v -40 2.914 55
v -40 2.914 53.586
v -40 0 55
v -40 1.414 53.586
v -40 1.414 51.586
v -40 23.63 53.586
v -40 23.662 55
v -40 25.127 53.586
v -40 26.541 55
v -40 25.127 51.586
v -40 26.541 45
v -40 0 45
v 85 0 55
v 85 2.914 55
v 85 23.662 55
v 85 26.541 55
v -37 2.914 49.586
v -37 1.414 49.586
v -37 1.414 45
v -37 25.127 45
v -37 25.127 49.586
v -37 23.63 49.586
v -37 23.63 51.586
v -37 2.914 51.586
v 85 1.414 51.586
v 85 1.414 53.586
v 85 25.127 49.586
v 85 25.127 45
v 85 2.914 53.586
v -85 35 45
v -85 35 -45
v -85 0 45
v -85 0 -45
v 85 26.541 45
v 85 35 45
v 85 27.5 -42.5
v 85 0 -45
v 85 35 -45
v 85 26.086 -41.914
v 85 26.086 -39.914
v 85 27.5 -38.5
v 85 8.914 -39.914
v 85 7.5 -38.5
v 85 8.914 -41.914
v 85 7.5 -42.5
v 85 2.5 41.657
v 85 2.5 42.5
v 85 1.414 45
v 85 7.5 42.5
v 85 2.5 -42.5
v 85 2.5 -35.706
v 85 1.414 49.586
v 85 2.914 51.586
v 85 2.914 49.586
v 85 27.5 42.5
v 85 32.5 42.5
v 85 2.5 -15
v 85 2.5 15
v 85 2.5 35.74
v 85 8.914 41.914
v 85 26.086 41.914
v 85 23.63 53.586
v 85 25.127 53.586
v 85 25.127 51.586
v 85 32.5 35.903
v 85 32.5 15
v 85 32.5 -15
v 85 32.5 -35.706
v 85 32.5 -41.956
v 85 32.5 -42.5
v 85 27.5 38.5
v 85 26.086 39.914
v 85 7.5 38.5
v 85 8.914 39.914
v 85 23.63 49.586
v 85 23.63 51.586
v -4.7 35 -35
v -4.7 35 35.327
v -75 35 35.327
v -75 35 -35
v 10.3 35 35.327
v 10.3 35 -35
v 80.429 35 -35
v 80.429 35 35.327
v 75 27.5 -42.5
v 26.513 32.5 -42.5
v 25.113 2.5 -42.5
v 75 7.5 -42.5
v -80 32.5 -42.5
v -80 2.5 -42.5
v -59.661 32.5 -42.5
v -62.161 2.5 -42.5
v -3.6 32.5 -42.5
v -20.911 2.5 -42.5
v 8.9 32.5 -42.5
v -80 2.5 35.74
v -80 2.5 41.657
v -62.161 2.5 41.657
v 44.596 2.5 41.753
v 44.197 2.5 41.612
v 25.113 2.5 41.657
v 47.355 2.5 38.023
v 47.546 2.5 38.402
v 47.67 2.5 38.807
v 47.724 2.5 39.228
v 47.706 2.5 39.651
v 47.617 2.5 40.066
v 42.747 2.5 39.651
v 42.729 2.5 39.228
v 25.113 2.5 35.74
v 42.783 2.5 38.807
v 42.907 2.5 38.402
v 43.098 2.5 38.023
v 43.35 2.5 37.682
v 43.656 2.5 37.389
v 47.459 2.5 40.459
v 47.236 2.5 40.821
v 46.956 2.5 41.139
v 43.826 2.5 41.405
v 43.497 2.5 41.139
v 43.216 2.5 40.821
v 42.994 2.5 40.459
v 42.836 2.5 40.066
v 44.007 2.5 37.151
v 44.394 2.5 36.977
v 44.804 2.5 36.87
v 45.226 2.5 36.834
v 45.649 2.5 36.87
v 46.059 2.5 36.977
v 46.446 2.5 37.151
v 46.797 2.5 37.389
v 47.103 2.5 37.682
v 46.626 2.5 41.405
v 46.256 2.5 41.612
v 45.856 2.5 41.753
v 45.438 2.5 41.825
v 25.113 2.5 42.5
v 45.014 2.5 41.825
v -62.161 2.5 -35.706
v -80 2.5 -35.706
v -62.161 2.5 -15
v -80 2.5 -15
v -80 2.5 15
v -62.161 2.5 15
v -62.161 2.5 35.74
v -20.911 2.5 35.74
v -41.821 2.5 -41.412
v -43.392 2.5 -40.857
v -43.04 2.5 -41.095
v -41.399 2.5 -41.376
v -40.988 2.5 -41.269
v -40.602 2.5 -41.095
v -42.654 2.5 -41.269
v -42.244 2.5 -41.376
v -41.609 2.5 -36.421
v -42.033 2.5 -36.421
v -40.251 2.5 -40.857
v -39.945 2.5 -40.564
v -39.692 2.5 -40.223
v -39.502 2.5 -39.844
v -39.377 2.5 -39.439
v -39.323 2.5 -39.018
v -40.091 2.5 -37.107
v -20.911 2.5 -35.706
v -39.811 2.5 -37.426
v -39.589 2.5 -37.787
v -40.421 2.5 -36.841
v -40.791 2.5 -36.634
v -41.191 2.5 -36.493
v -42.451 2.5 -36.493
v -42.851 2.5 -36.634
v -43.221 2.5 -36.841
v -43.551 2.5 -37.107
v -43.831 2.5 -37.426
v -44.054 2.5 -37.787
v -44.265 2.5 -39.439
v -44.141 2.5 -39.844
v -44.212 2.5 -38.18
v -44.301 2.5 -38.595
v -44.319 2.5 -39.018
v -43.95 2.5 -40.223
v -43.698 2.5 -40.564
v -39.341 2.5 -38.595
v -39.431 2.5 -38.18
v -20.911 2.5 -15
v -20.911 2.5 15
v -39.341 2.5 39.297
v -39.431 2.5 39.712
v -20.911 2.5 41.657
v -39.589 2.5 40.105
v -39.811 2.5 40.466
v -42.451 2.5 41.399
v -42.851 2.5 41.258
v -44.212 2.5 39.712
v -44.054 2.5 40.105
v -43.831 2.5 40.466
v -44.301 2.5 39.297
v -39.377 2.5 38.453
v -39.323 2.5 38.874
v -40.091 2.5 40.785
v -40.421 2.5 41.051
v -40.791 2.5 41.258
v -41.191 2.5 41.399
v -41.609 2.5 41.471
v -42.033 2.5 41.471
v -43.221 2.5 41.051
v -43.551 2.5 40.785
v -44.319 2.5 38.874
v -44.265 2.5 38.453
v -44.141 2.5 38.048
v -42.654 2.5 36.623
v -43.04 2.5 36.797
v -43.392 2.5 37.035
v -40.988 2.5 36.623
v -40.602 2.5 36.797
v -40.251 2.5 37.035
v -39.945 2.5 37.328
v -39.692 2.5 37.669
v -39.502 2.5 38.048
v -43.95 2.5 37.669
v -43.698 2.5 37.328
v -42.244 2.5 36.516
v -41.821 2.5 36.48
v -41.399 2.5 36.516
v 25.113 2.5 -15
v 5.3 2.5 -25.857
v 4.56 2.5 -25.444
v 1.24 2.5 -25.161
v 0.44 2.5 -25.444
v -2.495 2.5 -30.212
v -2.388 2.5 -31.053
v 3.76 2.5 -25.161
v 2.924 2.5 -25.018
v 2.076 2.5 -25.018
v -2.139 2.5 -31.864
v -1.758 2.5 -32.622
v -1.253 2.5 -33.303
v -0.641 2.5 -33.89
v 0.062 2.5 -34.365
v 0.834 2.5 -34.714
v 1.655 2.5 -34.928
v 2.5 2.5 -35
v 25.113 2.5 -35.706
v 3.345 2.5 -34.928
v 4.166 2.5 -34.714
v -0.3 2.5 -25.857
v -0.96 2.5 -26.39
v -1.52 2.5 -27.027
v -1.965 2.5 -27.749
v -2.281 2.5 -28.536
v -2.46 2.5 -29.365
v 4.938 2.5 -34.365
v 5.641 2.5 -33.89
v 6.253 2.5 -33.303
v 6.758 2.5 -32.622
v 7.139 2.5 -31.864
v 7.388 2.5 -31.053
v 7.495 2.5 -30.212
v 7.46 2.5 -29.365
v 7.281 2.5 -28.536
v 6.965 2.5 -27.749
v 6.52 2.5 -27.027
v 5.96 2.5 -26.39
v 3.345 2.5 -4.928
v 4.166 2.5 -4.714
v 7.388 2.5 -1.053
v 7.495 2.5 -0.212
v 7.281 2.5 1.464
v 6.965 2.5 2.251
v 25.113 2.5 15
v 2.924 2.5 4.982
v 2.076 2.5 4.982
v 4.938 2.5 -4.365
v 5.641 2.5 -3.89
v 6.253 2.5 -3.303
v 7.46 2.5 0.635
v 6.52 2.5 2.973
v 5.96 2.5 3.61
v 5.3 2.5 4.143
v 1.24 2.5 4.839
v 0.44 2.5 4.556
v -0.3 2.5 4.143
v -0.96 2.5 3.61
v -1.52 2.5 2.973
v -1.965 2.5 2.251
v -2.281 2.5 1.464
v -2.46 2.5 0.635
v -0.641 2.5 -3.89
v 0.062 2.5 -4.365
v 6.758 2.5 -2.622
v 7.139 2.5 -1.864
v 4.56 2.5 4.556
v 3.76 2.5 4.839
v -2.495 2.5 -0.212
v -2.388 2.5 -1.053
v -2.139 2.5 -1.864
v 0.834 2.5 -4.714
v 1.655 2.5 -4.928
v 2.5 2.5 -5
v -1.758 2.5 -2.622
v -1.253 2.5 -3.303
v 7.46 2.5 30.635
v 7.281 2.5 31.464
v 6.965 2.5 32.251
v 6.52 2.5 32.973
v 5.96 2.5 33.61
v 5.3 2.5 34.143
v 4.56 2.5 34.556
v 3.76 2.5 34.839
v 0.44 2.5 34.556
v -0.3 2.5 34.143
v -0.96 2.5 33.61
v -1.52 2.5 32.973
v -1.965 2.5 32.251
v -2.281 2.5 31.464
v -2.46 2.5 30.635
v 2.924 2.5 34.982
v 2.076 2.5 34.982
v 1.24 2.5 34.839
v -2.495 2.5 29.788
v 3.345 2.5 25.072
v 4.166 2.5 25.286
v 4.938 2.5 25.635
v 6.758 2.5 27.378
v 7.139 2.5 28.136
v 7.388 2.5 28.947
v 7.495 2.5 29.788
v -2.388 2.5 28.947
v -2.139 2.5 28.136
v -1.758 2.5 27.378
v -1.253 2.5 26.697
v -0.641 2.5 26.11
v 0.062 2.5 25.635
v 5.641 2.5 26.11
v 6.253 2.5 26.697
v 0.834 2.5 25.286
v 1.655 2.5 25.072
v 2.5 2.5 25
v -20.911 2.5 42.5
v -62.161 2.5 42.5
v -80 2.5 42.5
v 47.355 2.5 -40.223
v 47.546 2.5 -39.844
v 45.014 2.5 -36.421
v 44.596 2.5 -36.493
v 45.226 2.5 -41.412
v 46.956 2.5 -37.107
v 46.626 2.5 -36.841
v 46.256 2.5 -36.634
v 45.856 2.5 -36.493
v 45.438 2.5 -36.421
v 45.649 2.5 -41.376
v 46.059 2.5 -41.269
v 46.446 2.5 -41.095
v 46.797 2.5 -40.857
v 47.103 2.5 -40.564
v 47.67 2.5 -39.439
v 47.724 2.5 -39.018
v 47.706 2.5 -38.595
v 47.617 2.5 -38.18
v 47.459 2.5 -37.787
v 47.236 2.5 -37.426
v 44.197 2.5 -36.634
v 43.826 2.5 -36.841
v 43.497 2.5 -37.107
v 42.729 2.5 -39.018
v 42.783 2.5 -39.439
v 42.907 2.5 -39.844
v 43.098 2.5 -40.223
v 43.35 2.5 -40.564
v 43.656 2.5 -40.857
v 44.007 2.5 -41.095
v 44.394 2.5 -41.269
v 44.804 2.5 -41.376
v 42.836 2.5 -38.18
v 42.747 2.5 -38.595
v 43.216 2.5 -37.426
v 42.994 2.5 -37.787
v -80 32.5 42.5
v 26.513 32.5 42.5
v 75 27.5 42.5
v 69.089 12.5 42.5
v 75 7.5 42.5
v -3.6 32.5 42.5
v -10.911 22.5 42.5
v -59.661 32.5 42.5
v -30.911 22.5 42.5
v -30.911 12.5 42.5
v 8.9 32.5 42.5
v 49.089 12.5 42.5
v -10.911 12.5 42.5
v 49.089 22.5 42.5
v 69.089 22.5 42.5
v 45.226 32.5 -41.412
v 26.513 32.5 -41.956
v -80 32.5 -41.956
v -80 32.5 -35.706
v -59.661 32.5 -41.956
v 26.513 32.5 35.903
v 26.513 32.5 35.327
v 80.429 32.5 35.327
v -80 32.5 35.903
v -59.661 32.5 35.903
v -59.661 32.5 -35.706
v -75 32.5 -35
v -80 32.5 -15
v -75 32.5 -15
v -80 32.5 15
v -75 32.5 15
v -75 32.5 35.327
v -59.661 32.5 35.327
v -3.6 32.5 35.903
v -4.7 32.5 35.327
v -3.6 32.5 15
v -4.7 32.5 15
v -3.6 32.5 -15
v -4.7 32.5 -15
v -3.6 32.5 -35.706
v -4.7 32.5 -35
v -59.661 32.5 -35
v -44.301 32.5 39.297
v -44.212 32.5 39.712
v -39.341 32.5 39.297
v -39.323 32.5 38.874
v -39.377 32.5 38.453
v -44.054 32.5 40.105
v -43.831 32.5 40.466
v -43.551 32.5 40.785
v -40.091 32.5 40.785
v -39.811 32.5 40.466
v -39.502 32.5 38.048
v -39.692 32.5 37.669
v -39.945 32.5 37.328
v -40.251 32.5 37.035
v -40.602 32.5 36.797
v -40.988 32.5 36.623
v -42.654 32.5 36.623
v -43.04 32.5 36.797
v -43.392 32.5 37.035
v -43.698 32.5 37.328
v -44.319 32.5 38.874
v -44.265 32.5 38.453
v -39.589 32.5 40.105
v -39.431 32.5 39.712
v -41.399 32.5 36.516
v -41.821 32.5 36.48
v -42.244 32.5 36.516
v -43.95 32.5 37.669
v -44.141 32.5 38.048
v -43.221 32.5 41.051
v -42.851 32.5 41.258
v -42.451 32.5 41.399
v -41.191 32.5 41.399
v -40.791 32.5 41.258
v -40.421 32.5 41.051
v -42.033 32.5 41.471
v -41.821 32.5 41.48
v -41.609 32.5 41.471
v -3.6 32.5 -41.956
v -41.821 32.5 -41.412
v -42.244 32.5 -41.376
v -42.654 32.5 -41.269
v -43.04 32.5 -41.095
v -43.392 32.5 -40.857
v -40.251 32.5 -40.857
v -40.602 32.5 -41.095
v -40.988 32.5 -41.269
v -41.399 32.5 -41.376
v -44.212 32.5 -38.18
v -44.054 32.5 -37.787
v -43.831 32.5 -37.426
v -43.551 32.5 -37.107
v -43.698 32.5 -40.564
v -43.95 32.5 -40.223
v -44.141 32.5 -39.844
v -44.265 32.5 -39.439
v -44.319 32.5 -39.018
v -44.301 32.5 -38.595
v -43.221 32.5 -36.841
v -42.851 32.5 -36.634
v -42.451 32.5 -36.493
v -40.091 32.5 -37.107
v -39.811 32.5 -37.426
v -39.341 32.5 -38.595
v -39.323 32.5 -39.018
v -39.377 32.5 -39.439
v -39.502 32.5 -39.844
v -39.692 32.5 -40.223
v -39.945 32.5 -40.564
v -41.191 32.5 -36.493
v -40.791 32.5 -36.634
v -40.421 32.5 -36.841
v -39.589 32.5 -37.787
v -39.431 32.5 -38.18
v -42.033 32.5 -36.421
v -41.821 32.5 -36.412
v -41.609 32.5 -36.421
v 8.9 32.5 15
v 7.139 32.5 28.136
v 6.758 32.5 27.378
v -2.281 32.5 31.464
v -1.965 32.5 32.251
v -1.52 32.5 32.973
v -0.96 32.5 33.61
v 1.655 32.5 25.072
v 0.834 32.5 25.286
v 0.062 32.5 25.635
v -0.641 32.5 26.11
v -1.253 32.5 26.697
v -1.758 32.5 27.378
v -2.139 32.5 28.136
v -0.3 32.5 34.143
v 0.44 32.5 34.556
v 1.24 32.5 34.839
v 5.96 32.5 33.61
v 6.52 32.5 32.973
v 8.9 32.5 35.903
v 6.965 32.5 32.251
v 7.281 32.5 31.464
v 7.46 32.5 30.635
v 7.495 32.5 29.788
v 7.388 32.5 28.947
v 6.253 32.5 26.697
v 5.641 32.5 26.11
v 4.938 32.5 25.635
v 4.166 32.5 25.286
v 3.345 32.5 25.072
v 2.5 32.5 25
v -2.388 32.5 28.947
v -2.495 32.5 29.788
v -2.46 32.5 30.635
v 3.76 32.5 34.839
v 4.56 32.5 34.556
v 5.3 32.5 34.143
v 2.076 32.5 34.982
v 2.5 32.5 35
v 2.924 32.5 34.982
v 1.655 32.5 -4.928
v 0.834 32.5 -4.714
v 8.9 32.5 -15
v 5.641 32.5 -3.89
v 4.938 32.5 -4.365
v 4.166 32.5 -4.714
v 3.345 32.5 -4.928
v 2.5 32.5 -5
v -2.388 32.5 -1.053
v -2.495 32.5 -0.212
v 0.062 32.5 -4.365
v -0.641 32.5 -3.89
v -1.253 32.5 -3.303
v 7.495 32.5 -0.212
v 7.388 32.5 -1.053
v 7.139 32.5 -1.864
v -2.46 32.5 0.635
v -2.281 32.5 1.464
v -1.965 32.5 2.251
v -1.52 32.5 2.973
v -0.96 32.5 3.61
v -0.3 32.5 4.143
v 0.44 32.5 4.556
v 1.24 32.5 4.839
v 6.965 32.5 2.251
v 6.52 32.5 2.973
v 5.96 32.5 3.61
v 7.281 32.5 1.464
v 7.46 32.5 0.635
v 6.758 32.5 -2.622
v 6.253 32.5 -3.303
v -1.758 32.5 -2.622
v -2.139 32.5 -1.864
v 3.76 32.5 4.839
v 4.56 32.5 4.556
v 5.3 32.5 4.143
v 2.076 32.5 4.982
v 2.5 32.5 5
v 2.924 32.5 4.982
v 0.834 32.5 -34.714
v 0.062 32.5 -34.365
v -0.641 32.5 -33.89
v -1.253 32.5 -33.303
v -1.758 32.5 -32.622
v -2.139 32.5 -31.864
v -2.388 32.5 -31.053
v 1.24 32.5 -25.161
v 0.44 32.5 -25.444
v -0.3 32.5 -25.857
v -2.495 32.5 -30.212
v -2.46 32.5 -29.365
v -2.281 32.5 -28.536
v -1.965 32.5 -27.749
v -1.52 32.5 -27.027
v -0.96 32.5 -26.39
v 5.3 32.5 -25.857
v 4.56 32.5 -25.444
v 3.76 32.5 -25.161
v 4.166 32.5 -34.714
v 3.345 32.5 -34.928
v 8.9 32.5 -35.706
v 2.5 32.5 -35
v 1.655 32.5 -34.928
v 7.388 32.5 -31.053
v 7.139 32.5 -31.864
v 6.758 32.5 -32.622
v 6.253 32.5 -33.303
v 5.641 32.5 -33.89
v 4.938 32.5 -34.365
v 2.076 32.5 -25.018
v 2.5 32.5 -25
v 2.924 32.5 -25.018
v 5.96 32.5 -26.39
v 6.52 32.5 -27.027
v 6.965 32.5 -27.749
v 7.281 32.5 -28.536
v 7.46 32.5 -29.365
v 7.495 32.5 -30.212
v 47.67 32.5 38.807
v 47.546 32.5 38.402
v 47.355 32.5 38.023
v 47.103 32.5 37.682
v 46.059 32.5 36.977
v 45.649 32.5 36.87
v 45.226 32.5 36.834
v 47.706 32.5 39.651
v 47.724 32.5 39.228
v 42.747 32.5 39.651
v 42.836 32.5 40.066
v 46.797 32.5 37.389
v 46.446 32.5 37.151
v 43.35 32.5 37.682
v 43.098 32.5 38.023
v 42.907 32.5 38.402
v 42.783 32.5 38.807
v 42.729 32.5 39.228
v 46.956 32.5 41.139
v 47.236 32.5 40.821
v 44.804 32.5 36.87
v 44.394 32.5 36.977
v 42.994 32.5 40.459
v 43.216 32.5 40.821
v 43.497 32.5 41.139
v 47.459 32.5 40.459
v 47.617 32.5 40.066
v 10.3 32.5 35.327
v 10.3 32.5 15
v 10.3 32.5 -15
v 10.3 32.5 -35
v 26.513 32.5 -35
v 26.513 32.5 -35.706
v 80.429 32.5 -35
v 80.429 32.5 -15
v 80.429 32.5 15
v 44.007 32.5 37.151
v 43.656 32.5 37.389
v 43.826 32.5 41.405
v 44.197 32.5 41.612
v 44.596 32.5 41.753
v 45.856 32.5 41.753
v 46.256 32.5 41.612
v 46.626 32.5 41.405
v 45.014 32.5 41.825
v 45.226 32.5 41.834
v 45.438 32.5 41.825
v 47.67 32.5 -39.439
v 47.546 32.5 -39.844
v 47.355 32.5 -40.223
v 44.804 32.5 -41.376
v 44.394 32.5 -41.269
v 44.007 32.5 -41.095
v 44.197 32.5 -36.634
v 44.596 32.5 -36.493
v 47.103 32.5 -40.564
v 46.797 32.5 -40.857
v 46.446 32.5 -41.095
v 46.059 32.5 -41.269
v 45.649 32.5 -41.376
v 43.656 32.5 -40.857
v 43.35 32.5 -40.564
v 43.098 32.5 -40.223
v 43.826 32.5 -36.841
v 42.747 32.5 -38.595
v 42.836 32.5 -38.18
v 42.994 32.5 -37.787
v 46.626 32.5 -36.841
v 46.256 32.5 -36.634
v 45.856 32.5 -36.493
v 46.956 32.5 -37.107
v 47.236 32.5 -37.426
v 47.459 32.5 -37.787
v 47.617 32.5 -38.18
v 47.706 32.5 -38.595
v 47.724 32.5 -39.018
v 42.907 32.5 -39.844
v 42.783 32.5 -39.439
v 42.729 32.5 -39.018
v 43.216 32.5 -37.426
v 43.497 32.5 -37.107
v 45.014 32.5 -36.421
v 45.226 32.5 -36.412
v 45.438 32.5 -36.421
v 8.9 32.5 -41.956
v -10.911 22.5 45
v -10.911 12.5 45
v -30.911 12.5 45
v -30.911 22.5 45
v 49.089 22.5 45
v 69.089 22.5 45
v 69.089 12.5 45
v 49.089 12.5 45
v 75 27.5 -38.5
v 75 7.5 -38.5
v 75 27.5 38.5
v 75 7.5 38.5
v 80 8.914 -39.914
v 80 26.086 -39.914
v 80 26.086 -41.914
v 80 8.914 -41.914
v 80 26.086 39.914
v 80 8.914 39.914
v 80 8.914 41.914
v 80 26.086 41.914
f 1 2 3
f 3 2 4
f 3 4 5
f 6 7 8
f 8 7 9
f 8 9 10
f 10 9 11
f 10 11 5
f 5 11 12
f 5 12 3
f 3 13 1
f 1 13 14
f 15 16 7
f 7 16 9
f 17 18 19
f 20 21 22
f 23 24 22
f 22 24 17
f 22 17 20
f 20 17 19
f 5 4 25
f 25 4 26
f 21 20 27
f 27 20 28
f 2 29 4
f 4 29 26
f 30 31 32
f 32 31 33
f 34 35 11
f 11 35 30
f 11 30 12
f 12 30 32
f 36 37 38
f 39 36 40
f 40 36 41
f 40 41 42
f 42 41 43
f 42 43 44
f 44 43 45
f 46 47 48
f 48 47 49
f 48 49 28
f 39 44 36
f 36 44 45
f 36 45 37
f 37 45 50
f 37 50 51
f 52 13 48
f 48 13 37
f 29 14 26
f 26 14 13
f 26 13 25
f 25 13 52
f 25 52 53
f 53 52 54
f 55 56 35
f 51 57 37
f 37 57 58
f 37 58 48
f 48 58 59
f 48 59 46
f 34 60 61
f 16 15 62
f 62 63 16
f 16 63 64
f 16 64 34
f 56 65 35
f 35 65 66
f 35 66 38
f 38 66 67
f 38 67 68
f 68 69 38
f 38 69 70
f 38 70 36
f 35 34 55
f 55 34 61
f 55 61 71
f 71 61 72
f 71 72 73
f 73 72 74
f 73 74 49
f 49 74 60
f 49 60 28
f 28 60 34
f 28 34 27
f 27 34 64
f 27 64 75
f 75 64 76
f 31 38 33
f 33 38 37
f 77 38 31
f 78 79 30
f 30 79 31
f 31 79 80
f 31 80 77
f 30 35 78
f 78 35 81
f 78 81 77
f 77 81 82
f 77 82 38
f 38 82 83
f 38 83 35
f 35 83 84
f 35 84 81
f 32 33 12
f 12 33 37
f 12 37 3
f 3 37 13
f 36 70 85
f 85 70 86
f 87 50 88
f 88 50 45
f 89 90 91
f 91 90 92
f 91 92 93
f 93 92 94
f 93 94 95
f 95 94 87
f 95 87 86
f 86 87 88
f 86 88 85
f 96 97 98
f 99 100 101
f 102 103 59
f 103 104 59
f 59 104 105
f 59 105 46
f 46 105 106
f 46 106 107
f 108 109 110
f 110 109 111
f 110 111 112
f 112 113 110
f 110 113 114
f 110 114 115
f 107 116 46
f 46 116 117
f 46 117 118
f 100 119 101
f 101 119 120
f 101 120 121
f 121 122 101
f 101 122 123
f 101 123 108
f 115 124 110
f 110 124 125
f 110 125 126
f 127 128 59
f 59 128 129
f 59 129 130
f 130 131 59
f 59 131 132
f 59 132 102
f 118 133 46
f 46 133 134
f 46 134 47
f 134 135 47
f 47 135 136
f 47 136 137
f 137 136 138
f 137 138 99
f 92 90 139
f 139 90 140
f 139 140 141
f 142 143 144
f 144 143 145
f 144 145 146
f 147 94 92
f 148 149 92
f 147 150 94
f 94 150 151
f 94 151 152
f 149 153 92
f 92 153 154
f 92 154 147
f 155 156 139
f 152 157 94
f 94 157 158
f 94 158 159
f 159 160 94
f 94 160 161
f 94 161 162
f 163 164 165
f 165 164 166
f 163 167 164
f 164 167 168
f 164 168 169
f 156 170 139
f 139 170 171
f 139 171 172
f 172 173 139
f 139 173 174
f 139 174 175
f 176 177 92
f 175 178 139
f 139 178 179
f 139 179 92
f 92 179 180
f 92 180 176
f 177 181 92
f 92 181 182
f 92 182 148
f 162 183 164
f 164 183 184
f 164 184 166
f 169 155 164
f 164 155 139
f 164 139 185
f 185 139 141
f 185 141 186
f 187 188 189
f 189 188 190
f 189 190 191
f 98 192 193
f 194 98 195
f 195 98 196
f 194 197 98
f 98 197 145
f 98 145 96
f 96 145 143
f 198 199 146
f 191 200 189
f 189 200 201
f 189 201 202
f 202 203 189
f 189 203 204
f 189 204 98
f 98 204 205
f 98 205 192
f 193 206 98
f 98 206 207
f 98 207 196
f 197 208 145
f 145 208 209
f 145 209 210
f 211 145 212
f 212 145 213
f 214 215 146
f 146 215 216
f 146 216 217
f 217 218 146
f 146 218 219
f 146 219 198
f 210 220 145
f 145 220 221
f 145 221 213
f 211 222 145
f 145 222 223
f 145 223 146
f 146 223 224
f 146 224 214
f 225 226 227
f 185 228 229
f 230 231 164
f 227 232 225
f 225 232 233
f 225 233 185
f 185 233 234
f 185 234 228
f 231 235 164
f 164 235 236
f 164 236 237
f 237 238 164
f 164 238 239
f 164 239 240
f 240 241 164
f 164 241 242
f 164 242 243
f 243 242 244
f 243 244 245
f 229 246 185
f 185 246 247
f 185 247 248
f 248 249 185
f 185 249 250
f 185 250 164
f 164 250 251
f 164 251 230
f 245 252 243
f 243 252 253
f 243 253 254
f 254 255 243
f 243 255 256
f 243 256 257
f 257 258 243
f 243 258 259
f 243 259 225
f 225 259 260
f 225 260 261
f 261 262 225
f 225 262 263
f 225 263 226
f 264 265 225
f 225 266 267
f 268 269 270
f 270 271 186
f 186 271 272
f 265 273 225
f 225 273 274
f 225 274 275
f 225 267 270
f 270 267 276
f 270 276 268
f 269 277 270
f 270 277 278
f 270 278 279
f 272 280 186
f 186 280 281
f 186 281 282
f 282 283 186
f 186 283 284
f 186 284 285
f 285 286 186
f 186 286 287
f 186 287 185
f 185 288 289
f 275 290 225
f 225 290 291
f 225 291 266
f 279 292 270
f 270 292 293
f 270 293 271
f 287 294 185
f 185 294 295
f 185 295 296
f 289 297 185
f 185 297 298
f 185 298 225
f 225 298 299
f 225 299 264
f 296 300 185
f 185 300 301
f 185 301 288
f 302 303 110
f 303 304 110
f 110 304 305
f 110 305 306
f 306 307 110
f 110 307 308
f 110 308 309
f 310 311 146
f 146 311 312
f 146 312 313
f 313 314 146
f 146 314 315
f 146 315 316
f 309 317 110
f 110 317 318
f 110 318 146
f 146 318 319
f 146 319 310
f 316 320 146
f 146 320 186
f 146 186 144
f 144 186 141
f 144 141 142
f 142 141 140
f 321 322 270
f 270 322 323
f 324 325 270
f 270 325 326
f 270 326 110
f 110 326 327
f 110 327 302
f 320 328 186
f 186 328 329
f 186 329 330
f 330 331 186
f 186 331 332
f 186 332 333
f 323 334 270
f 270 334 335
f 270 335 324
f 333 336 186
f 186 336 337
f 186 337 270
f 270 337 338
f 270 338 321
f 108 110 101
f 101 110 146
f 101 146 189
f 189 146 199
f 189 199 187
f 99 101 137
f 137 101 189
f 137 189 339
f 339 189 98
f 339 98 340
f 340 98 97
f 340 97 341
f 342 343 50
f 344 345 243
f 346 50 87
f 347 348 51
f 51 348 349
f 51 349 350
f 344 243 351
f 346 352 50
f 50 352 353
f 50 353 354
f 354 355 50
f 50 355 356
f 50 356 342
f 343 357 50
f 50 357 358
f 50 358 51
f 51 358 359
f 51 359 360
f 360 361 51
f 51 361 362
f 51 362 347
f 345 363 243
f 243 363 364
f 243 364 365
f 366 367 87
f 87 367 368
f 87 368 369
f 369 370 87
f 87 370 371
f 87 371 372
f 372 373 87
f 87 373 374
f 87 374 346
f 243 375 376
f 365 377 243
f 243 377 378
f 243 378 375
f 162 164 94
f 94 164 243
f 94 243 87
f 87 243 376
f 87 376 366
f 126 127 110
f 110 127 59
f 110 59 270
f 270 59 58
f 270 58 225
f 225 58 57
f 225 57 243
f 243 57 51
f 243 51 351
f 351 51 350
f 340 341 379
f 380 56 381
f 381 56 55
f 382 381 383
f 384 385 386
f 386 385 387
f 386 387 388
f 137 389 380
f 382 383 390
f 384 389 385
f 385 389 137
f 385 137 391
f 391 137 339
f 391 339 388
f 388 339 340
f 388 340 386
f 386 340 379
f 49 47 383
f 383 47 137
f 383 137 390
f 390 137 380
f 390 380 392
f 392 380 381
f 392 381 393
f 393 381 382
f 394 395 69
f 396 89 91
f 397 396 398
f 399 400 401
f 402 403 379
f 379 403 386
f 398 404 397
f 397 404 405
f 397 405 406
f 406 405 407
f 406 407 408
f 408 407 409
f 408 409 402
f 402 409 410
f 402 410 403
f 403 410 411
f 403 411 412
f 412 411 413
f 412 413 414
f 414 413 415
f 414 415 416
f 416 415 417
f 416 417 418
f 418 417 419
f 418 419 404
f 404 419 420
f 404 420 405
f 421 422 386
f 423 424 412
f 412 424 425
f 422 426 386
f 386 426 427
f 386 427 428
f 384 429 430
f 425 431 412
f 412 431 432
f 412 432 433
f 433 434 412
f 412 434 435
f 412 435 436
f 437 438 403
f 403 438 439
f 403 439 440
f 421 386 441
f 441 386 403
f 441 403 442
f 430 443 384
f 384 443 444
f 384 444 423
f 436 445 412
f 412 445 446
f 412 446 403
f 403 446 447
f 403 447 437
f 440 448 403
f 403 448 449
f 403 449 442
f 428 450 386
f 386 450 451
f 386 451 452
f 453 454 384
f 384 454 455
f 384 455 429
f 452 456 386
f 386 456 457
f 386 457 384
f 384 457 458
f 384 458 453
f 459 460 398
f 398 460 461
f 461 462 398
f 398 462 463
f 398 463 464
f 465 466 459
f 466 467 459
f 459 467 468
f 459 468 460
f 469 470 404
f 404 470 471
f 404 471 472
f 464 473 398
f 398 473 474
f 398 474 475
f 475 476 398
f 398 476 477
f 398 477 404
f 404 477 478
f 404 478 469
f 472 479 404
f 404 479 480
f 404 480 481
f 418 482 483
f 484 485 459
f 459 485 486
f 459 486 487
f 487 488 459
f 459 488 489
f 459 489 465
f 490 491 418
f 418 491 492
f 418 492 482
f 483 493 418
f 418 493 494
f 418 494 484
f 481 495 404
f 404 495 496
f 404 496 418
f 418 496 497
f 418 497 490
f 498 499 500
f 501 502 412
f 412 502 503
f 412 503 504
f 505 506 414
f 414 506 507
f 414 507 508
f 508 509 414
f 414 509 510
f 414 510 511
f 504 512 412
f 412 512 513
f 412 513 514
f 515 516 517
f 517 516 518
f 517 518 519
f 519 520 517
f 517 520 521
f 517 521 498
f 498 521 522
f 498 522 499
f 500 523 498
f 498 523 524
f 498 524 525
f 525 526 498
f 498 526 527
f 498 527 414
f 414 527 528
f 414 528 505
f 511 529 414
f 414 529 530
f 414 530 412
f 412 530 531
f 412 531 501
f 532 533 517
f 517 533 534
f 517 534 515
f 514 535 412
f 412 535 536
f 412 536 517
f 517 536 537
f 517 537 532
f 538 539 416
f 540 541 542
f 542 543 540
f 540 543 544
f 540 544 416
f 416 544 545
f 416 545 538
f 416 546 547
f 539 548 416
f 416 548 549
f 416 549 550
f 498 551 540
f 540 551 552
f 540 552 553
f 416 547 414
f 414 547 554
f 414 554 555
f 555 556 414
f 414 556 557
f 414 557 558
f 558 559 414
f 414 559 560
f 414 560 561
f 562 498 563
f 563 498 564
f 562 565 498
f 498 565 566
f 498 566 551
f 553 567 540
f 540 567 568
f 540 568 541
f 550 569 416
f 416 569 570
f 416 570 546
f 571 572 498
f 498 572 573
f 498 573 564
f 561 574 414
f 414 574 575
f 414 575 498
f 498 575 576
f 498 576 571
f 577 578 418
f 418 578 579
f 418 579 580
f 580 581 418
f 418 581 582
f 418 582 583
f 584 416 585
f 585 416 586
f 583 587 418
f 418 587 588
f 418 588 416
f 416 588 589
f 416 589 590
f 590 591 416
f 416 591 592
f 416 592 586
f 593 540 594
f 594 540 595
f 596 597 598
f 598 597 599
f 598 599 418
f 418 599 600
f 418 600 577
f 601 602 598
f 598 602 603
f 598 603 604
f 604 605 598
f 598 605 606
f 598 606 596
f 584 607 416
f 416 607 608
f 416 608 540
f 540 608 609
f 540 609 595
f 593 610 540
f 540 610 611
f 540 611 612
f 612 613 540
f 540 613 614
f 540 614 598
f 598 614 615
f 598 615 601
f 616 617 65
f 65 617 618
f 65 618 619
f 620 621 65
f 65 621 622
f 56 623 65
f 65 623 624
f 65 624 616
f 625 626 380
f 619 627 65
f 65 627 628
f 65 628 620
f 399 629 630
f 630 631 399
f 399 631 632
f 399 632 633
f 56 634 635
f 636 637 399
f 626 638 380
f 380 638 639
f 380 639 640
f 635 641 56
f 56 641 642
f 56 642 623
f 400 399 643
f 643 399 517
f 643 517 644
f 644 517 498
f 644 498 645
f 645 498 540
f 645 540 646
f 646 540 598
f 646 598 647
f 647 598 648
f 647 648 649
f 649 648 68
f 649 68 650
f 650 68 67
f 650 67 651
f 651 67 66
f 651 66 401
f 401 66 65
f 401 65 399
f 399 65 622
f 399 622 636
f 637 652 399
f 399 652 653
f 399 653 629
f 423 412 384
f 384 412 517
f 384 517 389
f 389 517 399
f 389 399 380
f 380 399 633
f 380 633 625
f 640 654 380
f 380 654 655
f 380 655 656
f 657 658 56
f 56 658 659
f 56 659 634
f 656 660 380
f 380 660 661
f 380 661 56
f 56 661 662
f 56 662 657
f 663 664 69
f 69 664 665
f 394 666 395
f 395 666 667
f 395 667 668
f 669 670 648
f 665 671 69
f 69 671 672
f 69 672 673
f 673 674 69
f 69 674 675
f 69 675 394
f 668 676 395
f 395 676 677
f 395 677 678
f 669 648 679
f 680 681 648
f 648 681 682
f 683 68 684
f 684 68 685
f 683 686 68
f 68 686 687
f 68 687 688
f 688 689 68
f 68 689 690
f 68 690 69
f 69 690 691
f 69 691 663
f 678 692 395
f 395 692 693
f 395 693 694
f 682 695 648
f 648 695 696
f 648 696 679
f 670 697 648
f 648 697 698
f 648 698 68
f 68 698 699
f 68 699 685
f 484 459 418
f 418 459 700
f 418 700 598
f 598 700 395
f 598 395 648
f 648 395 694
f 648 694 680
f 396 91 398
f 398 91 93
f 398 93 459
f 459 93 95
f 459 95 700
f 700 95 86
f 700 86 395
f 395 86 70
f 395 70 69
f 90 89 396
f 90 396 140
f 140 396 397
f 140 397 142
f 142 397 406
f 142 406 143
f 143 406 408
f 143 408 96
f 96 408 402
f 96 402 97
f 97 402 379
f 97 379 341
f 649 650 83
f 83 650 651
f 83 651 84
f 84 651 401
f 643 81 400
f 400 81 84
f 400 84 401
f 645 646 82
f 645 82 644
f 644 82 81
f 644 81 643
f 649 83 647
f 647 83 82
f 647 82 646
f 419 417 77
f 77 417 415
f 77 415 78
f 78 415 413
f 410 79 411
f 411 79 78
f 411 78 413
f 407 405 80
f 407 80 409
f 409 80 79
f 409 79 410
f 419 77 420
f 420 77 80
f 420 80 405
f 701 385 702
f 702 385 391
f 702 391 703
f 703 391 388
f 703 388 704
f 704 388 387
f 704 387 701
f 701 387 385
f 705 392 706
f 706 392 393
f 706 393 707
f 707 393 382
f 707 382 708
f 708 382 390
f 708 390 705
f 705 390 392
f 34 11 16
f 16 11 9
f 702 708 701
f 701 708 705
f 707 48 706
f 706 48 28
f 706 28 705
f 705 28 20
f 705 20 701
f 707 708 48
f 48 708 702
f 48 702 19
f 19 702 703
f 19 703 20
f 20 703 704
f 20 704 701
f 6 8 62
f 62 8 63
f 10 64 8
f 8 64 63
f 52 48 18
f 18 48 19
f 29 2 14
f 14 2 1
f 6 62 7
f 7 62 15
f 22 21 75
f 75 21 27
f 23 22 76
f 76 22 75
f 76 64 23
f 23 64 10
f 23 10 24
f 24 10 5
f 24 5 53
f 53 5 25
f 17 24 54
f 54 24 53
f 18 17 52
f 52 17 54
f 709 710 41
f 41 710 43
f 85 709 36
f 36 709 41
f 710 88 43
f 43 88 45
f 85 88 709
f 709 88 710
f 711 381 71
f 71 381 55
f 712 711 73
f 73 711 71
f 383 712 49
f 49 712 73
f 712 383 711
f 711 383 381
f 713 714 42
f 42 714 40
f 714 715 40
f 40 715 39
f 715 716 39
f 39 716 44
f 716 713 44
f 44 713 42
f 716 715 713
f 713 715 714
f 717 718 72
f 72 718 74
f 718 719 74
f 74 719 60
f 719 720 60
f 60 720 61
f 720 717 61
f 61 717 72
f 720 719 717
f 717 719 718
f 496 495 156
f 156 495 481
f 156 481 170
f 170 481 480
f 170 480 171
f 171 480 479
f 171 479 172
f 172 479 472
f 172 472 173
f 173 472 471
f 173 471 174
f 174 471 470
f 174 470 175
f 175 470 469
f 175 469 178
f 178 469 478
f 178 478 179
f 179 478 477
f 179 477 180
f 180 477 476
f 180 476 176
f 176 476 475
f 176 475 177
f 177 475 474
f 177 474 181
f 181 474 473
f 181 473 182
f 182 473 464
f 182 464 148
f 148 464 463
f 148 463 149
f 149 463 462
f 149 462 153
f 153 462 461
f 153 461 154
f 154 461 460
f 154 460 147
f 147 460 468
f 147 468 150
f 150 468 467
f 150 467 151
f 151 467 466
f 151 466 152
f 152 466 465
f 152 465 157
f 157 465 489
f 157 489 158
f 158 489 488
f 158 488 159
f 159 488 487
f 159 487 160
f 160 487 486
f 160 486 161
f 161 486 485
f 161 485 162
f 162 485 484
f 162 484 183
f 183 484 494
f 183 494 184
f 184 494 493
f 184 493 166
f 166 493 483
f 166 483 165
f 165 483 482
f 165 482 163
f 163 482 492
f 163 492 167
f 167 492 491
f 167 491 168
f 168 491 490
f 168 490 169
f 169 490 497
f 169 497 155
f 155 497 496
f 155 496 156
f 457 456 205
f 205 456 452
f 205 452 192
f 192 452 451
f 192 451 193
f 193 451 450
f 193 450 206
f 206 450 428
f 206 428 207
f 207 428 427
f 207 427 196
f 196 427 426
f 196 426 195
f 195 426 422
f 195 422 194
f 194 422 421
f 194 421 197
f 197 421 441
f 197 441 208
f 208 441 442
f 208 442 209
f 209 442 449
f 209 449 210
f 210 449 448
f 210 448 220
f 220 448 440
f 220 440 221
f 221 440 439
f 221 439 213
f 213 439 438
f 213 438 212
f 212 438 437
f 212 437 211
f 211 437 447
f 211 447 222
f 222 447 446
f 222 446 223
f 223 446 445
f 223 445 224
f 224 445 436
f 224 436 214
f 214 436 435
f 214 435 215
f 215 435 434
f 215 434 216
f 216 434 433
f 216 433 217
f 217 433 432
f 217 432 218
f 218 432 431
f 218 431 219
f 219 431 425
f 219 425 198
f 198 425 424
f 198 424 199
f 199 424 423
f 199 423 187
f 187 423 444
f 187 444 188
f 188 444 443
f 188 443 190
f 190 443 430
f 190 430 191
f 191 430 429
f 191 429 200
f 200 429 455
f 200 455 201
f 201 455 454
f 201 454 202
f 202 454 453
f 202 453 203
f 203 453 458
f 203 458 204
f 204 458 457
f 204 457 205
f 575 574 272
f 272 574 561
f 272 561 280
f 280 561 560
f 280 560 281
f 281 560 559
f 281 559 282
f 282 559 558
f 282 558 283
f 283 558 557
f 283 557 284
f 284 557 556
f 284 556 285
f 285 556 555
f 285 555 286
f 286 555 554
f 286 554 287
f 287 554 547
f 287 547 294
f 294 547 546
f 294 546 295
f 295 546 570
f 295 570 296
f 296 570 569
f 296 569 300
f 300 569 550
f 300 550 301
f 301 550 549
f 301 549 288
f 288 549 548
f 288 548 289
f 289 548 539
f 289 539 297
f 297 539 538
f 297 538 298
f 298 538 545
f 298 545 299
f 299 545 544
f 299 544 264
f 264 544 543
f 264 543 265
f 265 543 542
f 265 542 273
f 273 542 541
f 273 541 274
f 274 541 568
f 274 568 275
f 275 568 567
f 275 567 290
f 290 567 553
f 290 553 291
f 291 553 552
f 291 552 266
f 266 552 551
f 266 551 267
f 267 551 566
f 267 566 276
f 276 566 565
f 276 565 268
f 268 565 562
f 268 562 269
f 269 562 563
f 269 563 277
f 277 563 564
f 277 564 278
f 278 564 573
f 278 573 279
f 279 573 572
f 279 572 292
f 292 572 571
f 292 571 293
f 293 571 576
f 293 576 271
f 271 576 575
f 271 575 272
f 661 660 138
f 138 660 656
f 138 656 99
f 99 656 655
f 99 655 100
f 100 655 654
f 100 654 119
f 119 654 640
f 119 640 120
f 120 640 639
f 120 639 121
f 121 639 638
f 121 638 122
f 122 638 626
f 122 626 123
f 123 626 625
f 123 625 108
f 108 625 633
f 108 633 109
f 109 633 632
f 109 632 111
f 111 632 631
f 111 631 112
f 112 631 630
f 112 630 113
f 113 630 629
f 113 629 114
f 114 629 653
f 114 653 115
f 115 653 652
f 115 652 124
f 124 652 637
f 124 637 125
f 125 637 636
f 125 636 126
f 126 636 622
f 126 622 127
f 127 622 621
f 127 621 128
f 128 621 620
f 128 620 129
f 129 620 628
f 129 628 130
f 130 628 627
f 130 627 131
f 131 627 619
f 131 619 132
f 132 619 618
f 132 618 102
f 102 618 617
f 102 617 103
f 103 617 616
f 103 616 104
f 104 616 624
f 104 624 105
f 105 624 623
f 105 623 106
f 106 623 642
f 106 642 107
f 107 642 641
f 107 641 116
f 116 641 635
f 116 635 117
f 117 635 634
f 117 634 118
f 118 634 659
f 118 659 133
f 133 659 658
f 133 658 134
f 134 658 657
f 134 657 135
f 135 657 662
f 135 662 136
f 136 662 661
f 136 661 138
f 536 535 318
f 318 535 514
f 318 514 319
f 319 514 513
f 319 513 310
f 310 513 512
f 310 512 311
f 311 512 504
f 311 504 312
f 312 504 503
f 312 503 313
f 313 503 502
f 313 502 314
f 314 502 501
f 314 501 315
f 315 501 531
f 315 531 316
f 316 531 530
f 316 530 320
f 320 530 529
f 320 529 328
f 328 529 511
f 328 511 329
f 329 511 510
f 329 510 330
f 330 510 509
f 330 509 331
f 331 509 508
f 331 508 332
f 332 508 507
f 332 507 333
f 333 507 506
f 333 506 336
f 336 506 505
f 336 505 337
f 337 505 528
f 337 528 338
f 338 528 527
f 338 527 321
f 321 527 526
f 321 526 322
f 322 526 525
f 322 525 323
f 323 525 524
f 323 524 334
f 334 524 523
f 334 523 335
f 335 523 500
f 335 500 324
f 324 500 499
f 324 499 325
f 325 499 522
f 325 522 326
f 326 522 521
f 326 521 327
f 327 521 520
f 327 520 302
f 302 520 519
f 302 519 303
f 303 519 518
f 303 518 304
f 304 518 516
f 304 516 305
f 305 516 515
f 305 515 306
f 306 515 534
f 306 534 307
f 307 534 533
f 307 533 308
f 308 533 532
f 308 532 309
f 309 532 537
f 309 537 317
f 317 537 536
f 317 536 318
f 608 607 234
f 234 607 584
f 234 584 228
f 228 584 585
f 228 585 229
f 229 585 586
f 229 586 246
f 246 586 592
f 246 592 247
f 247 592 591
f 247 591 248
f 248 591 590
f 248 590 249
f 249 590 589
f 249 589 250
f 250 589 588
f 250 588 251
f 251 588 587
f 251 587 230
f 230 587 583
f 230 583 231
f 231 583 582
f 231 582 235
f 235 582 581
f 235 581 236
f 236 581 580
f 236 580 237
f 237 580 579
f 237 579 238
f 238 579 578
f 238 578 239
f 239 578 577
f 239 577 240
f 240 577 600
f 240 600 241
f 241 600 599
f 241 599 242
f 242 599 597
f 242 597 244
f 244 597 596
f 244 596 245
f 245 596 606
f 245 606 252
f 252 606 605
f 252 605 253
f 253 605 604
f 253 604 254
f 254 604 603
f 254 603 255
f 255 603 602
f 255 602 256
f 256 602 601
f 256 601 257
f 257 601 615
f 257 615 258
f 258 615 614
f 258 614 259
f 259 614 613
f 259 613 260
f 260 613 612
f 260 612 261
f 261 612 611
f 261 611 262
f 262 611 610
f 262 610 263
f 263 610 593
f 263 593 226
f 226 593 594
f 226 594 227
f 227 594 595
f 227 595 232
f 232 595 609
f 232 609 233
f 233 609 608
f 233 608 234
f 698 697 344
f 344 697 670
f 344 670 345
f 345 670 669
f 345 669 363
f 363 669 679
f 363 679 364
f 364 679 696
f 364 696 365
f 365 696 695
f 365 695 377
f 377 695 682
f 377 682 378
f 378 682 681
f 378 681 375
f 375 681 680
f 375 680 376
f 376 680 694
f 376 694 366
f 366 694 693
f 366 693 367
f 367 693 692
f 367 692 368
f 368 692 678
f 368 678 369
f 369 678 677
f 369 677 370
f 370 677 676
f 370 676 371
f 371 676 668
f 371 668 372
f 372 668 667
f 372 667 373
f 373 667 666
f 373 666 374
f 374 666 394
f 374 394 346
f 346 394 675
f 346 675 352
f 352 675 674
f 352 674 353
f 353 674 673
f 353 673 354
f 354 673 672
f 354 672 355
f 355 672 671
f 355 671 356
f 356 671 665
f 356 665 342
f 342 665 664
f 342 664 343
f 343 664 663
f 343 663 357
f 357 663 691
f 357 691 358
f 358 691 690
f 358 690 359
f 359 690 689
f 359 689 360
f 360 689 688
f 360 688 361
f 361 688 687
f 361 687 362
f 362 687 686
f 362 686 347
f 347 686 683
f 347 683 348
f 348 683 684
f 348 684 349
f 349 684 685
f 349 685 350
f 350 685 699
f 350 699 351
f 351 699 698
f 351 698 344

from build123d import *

# Parameters (mm, degrees)
SKETCH_1_W               = 170
SKETCH_1_H               = 90
EXTRUDE_1_DEPTH          = 35
SKETCH_2_W               = 85
SKETCH_2_H               = 30
CUT_EXTRUDE_1_DEPTH      = 165
SKETCH_3_W               = 70.129701139
SKETCH_3_H               = 70.327043484
SKETCH_3_W_2             = 70.299701721
CUT_EXTRUDE_2_DEPTH      = 10
SKETCH_7_W               = 20
SKETCH_7_H               = 10
CUT_EXTRUDE_3_DEPTH      = 10
EXTRUDE_2_DEPTH          = 85
EXTRUDE_2_DEPTH_BACK     = 40
SKETCH_8_W               = 10
SKETCH_8_H               = 26.54076927
SKETCH_9_W               = 8.585786438
SKETCH_9_H               = 23.712342146
CUT_EXTRUDE_4_DEPTH      = 122
CUT_EXTRUDE_5_DEPTH      = 122
SKETCH_11_W              = 2
SKETCH_11_H              = 1.496455469
SKETCH_11_H_2            = 1.5
EXTRUDE_3_DEPTH          = 122
SKETCH_13_W              = 4
SKETCH_13_H              = 20
EXTRUDE_4_DEPTH          = 10
SKETCH_14_W              = 2
SKETCH_14_H              = 17.171572876
CUT_EXTRUDE_6_DEPTH      = 5
CUT_EXTRUDE_7_DEPTH      = 139.325702601
CUT_EXTRUDE_7_DEPTH_BACK = 5
SKETCH_16_R              = 2.5
SKETCH_16_R_2            = 5
EXTRUDE_5_DEPTH          = 32


with BuildPart() as part:
    # Эскиз1 → Бобышка-Вытянуть1 (new body)
    with BuildSketch(Plane(origin=(0, 0, 0), x_dir=(1, 0, 0), z_dir=(0, 1, 0))):
        Rectangle(SKETCH_1_W, SKETCH_1_H)
    extrude(amount=EXTRUDE_1_DEPTH)

    # Эскиз2 → Вырез-Вытянуть1 (cut)
    with BuildSketch(Plane(origin=(85, 0, 0), x_dir=(0, 0, -1), z_dir=(1, 0, 0))):
        with Locations((0, 17.5)):
            Rectangle(SKETCH_2_W, SKETCH_2_H)
    extrude(amount=-CUT_EXTRUDE_1_DEPTH, mode=Mode.SUBTRACT)

    # Эскиз3 → Вырез-Вытянуть2 (cut)
    with BuildSketch(Plane(origin=(0, 35, 0), x_dir=(1, 0, 0), z_dir=(0, 1, 0))):
        with Locations((45.364552291, -0.163521742)):
            Rectangle(SKETCH_3_W, SKETCH_3_H)
        with Locations((-39.850149139, -0.163521742)):
            Rectangle(SKETCH_3_W_2, SKETCH_3_H)
    extrude(amount=-CUT_EXTRUDE_2_DEPTH, mode=Mode.SUBTRACT)

    # Эскиз7 → Вырез-Вытянуть3 (cut)
    with BuildSketch(Plane.XY.offset(45)):
        with Locations((59.089377198, 17.5)):
            Rectangle(SKETCH_7_W, SKETCH_7_H)
        with Locations((-20.910622802, 17.5)):
            Rectangle(SKETCH_7_W, SKETCH_7_H)
    extrude(amount=-CUT_EXTRUDE_3_DEPTH, mode=Mode.SUBTRACT)

    # Эскиз8 → Бобышка-Вытянуть2 (add, two sides: drawn at the far end of the back side and taken through both)
    with BuildSketch(Plane(origin=(0, 0, 0), x_dir=(0, 0, -1), z_dir=(1, 0, 0)).offset(-EXTRUDE_2_DEPTH_BACK)):
        with Locations((-50, 13.270384635)):
            Rectangle(SKETCH_8_W, SKETCH_8_H)
    extrude(amount=EXTRUDE_2_DEPTH + EXTRUDE_2_DEPTH_BACK)

    # Эскиз9 → Вырез-Вытянуть4 (cut)
    with BuildSketch(Plane(origin=(85, 0, 0), x_dir=(0, 0, -1), z_dir=(1, 0, 0))):
        with Locations((-49.292893219, 13.270384635)):
            Rectangle(SKETCH_9_W, SKETCH_9_H)
    extrude(amount=-CUT_EXTRUDE_4_DEPTH, mode=Mode.SUBTRACT)

    # Эскиз10 → Вырез-Вытянуть5 (cut)
    with BuildSketch(Plane(origin=(85, 0, 0), x_dir=(0, 0, -1), z_dir=(1, 0, 0))):
        Polygon((-53.585786438, 2.914213562), (-57.191351612, 2.914213562), (-57.191351612, 23.710872093), (-53.585786438, 23.630100239), align=None)
    extrude(amount=-CUT_EXTRUDE_5_DEPTH, mode=Mode.SUBTRACT)

    # Эскиз11 → Бобышка-Вытянуть3 (add)
    with BuildSketch(Plane(origin=(85, 0, 0), x_dir=(0, 0, -1), z_dir=(1, 0, 0))):
        with Locations((-50.585786438, 24.378327973)):
            Rectangle(SKETCH_11_W, SKETCH_11_H)
        with Locations((-50.585786438, 2.164213562)):
            Rectangle(SKETCH_11_W, SKETCH_11_H_2)
    extrude(amount=-EXTRUDE_3_DEPTH)

    # Эскиз13 → Бобышка-Вытянуть4 (add)
    with BuildSketch(Plane(origin=(85, 0, 0), x_dir=(0, 0, -1), z_dir=(1, 0, 0))):
        with Locations((40.5, 17.5)):
            Rectangle(SKETCH_13_W, SKETCH_13_H)
        with Locations((-40.5, 17.5)):
            Rectangle(SKETCH_13_W, SKETCH_13_H)
    extrude(amount=-EXTRUDE_4_DEPTH)

    # Эскиз14 → Вырез-Вытянуть6 (cut)
    with BuildSketch(Plane(origin=(85, 0, 0), x_dir=(0, 0, -1), z_dir=(1, 0, 0))):
        with Locations((-40.914213562, 17.5)):
            Rectangle(SKETCH_14_W, SKETCH_14_H)
        with Locations((40.914213562, 17.5)):
            Rectangle(SKETCH_14_W, SKETCH_14_H)
    extrude(amount=-CUT_EXTRUDE_6_DEPTH, mode=Mode.SUBTRACT)

    # Эскиз15 → Вырез-Вытянуть7 (cut, two sides: drawn at the far end of the back side and taken through both)
    with BuildSketch(Plane(origin=(-37, 0, 0), x_dir=(0, 0, -1), z_dir=(1, 0, 0)).offset(-CUT_EXTRUDE_7_DEPTH_BACK)):
        Polygon((-55, 23.661781445), (-53.585786438, 23.630100239), (-53.585786438, 25.126555708), (-51.585786438, 25.126555708), (-51.585786438, 1.414213562), (-53.585786438, 1.414213562), (-53.585786438, 2.914213562), (-55, 2.914213562), (-57.035298645, 2.914213562), (-57.035298645, 23.645940842), align=None)
    extrude(amount=CUT_EXTRUDE_7_DEPTH + CUT_EXTRUDE_7_DEPTH_BACK, mode=Mode.SUBTRACT)

    # Эскиз16 → Бобышка-Вытянуть5 (add)
    with BuildSketch(Plane(origin=(0, 2.5, 0), x_dir=(1, 0, 0), z_dir=(0, 1, 0))):
        with Locations(Location((-41.821245604, 38.912307884, 0), (0, 0, 90))):
            Circle(SKETCH_16_R)
        with Locations(Location((-41.821245604, -38.979762053, 0), (0, 0, 90))):
            Circle(SKETCH_16_R)
        with Locations(Location((2.5, 0, 0), (0, 0, 90))):
            Circle(SKETCH_16_R_2)
        with Locations(Location((45.226425125, 38.912307884, 0), (0, 0, 90))):
            Circle(SKETCH_16_R)
        with Locations(Location((45.226425125, -39.333951436, 0), (0, 0, 90))):
            Circle(SKETCH_16_R)
        with Locations(Location((2.5, 30, 0), (0, 0, 90))):
            Circle(SKETCH_16_R_2)
        with Locations(Location((2.5, -30, 0), (0, 0, 90))):
            Circle(SKETCH_16_R_2)
    extrude(amount=EXTRUDE_5_DEPTH)


solid = part.part
